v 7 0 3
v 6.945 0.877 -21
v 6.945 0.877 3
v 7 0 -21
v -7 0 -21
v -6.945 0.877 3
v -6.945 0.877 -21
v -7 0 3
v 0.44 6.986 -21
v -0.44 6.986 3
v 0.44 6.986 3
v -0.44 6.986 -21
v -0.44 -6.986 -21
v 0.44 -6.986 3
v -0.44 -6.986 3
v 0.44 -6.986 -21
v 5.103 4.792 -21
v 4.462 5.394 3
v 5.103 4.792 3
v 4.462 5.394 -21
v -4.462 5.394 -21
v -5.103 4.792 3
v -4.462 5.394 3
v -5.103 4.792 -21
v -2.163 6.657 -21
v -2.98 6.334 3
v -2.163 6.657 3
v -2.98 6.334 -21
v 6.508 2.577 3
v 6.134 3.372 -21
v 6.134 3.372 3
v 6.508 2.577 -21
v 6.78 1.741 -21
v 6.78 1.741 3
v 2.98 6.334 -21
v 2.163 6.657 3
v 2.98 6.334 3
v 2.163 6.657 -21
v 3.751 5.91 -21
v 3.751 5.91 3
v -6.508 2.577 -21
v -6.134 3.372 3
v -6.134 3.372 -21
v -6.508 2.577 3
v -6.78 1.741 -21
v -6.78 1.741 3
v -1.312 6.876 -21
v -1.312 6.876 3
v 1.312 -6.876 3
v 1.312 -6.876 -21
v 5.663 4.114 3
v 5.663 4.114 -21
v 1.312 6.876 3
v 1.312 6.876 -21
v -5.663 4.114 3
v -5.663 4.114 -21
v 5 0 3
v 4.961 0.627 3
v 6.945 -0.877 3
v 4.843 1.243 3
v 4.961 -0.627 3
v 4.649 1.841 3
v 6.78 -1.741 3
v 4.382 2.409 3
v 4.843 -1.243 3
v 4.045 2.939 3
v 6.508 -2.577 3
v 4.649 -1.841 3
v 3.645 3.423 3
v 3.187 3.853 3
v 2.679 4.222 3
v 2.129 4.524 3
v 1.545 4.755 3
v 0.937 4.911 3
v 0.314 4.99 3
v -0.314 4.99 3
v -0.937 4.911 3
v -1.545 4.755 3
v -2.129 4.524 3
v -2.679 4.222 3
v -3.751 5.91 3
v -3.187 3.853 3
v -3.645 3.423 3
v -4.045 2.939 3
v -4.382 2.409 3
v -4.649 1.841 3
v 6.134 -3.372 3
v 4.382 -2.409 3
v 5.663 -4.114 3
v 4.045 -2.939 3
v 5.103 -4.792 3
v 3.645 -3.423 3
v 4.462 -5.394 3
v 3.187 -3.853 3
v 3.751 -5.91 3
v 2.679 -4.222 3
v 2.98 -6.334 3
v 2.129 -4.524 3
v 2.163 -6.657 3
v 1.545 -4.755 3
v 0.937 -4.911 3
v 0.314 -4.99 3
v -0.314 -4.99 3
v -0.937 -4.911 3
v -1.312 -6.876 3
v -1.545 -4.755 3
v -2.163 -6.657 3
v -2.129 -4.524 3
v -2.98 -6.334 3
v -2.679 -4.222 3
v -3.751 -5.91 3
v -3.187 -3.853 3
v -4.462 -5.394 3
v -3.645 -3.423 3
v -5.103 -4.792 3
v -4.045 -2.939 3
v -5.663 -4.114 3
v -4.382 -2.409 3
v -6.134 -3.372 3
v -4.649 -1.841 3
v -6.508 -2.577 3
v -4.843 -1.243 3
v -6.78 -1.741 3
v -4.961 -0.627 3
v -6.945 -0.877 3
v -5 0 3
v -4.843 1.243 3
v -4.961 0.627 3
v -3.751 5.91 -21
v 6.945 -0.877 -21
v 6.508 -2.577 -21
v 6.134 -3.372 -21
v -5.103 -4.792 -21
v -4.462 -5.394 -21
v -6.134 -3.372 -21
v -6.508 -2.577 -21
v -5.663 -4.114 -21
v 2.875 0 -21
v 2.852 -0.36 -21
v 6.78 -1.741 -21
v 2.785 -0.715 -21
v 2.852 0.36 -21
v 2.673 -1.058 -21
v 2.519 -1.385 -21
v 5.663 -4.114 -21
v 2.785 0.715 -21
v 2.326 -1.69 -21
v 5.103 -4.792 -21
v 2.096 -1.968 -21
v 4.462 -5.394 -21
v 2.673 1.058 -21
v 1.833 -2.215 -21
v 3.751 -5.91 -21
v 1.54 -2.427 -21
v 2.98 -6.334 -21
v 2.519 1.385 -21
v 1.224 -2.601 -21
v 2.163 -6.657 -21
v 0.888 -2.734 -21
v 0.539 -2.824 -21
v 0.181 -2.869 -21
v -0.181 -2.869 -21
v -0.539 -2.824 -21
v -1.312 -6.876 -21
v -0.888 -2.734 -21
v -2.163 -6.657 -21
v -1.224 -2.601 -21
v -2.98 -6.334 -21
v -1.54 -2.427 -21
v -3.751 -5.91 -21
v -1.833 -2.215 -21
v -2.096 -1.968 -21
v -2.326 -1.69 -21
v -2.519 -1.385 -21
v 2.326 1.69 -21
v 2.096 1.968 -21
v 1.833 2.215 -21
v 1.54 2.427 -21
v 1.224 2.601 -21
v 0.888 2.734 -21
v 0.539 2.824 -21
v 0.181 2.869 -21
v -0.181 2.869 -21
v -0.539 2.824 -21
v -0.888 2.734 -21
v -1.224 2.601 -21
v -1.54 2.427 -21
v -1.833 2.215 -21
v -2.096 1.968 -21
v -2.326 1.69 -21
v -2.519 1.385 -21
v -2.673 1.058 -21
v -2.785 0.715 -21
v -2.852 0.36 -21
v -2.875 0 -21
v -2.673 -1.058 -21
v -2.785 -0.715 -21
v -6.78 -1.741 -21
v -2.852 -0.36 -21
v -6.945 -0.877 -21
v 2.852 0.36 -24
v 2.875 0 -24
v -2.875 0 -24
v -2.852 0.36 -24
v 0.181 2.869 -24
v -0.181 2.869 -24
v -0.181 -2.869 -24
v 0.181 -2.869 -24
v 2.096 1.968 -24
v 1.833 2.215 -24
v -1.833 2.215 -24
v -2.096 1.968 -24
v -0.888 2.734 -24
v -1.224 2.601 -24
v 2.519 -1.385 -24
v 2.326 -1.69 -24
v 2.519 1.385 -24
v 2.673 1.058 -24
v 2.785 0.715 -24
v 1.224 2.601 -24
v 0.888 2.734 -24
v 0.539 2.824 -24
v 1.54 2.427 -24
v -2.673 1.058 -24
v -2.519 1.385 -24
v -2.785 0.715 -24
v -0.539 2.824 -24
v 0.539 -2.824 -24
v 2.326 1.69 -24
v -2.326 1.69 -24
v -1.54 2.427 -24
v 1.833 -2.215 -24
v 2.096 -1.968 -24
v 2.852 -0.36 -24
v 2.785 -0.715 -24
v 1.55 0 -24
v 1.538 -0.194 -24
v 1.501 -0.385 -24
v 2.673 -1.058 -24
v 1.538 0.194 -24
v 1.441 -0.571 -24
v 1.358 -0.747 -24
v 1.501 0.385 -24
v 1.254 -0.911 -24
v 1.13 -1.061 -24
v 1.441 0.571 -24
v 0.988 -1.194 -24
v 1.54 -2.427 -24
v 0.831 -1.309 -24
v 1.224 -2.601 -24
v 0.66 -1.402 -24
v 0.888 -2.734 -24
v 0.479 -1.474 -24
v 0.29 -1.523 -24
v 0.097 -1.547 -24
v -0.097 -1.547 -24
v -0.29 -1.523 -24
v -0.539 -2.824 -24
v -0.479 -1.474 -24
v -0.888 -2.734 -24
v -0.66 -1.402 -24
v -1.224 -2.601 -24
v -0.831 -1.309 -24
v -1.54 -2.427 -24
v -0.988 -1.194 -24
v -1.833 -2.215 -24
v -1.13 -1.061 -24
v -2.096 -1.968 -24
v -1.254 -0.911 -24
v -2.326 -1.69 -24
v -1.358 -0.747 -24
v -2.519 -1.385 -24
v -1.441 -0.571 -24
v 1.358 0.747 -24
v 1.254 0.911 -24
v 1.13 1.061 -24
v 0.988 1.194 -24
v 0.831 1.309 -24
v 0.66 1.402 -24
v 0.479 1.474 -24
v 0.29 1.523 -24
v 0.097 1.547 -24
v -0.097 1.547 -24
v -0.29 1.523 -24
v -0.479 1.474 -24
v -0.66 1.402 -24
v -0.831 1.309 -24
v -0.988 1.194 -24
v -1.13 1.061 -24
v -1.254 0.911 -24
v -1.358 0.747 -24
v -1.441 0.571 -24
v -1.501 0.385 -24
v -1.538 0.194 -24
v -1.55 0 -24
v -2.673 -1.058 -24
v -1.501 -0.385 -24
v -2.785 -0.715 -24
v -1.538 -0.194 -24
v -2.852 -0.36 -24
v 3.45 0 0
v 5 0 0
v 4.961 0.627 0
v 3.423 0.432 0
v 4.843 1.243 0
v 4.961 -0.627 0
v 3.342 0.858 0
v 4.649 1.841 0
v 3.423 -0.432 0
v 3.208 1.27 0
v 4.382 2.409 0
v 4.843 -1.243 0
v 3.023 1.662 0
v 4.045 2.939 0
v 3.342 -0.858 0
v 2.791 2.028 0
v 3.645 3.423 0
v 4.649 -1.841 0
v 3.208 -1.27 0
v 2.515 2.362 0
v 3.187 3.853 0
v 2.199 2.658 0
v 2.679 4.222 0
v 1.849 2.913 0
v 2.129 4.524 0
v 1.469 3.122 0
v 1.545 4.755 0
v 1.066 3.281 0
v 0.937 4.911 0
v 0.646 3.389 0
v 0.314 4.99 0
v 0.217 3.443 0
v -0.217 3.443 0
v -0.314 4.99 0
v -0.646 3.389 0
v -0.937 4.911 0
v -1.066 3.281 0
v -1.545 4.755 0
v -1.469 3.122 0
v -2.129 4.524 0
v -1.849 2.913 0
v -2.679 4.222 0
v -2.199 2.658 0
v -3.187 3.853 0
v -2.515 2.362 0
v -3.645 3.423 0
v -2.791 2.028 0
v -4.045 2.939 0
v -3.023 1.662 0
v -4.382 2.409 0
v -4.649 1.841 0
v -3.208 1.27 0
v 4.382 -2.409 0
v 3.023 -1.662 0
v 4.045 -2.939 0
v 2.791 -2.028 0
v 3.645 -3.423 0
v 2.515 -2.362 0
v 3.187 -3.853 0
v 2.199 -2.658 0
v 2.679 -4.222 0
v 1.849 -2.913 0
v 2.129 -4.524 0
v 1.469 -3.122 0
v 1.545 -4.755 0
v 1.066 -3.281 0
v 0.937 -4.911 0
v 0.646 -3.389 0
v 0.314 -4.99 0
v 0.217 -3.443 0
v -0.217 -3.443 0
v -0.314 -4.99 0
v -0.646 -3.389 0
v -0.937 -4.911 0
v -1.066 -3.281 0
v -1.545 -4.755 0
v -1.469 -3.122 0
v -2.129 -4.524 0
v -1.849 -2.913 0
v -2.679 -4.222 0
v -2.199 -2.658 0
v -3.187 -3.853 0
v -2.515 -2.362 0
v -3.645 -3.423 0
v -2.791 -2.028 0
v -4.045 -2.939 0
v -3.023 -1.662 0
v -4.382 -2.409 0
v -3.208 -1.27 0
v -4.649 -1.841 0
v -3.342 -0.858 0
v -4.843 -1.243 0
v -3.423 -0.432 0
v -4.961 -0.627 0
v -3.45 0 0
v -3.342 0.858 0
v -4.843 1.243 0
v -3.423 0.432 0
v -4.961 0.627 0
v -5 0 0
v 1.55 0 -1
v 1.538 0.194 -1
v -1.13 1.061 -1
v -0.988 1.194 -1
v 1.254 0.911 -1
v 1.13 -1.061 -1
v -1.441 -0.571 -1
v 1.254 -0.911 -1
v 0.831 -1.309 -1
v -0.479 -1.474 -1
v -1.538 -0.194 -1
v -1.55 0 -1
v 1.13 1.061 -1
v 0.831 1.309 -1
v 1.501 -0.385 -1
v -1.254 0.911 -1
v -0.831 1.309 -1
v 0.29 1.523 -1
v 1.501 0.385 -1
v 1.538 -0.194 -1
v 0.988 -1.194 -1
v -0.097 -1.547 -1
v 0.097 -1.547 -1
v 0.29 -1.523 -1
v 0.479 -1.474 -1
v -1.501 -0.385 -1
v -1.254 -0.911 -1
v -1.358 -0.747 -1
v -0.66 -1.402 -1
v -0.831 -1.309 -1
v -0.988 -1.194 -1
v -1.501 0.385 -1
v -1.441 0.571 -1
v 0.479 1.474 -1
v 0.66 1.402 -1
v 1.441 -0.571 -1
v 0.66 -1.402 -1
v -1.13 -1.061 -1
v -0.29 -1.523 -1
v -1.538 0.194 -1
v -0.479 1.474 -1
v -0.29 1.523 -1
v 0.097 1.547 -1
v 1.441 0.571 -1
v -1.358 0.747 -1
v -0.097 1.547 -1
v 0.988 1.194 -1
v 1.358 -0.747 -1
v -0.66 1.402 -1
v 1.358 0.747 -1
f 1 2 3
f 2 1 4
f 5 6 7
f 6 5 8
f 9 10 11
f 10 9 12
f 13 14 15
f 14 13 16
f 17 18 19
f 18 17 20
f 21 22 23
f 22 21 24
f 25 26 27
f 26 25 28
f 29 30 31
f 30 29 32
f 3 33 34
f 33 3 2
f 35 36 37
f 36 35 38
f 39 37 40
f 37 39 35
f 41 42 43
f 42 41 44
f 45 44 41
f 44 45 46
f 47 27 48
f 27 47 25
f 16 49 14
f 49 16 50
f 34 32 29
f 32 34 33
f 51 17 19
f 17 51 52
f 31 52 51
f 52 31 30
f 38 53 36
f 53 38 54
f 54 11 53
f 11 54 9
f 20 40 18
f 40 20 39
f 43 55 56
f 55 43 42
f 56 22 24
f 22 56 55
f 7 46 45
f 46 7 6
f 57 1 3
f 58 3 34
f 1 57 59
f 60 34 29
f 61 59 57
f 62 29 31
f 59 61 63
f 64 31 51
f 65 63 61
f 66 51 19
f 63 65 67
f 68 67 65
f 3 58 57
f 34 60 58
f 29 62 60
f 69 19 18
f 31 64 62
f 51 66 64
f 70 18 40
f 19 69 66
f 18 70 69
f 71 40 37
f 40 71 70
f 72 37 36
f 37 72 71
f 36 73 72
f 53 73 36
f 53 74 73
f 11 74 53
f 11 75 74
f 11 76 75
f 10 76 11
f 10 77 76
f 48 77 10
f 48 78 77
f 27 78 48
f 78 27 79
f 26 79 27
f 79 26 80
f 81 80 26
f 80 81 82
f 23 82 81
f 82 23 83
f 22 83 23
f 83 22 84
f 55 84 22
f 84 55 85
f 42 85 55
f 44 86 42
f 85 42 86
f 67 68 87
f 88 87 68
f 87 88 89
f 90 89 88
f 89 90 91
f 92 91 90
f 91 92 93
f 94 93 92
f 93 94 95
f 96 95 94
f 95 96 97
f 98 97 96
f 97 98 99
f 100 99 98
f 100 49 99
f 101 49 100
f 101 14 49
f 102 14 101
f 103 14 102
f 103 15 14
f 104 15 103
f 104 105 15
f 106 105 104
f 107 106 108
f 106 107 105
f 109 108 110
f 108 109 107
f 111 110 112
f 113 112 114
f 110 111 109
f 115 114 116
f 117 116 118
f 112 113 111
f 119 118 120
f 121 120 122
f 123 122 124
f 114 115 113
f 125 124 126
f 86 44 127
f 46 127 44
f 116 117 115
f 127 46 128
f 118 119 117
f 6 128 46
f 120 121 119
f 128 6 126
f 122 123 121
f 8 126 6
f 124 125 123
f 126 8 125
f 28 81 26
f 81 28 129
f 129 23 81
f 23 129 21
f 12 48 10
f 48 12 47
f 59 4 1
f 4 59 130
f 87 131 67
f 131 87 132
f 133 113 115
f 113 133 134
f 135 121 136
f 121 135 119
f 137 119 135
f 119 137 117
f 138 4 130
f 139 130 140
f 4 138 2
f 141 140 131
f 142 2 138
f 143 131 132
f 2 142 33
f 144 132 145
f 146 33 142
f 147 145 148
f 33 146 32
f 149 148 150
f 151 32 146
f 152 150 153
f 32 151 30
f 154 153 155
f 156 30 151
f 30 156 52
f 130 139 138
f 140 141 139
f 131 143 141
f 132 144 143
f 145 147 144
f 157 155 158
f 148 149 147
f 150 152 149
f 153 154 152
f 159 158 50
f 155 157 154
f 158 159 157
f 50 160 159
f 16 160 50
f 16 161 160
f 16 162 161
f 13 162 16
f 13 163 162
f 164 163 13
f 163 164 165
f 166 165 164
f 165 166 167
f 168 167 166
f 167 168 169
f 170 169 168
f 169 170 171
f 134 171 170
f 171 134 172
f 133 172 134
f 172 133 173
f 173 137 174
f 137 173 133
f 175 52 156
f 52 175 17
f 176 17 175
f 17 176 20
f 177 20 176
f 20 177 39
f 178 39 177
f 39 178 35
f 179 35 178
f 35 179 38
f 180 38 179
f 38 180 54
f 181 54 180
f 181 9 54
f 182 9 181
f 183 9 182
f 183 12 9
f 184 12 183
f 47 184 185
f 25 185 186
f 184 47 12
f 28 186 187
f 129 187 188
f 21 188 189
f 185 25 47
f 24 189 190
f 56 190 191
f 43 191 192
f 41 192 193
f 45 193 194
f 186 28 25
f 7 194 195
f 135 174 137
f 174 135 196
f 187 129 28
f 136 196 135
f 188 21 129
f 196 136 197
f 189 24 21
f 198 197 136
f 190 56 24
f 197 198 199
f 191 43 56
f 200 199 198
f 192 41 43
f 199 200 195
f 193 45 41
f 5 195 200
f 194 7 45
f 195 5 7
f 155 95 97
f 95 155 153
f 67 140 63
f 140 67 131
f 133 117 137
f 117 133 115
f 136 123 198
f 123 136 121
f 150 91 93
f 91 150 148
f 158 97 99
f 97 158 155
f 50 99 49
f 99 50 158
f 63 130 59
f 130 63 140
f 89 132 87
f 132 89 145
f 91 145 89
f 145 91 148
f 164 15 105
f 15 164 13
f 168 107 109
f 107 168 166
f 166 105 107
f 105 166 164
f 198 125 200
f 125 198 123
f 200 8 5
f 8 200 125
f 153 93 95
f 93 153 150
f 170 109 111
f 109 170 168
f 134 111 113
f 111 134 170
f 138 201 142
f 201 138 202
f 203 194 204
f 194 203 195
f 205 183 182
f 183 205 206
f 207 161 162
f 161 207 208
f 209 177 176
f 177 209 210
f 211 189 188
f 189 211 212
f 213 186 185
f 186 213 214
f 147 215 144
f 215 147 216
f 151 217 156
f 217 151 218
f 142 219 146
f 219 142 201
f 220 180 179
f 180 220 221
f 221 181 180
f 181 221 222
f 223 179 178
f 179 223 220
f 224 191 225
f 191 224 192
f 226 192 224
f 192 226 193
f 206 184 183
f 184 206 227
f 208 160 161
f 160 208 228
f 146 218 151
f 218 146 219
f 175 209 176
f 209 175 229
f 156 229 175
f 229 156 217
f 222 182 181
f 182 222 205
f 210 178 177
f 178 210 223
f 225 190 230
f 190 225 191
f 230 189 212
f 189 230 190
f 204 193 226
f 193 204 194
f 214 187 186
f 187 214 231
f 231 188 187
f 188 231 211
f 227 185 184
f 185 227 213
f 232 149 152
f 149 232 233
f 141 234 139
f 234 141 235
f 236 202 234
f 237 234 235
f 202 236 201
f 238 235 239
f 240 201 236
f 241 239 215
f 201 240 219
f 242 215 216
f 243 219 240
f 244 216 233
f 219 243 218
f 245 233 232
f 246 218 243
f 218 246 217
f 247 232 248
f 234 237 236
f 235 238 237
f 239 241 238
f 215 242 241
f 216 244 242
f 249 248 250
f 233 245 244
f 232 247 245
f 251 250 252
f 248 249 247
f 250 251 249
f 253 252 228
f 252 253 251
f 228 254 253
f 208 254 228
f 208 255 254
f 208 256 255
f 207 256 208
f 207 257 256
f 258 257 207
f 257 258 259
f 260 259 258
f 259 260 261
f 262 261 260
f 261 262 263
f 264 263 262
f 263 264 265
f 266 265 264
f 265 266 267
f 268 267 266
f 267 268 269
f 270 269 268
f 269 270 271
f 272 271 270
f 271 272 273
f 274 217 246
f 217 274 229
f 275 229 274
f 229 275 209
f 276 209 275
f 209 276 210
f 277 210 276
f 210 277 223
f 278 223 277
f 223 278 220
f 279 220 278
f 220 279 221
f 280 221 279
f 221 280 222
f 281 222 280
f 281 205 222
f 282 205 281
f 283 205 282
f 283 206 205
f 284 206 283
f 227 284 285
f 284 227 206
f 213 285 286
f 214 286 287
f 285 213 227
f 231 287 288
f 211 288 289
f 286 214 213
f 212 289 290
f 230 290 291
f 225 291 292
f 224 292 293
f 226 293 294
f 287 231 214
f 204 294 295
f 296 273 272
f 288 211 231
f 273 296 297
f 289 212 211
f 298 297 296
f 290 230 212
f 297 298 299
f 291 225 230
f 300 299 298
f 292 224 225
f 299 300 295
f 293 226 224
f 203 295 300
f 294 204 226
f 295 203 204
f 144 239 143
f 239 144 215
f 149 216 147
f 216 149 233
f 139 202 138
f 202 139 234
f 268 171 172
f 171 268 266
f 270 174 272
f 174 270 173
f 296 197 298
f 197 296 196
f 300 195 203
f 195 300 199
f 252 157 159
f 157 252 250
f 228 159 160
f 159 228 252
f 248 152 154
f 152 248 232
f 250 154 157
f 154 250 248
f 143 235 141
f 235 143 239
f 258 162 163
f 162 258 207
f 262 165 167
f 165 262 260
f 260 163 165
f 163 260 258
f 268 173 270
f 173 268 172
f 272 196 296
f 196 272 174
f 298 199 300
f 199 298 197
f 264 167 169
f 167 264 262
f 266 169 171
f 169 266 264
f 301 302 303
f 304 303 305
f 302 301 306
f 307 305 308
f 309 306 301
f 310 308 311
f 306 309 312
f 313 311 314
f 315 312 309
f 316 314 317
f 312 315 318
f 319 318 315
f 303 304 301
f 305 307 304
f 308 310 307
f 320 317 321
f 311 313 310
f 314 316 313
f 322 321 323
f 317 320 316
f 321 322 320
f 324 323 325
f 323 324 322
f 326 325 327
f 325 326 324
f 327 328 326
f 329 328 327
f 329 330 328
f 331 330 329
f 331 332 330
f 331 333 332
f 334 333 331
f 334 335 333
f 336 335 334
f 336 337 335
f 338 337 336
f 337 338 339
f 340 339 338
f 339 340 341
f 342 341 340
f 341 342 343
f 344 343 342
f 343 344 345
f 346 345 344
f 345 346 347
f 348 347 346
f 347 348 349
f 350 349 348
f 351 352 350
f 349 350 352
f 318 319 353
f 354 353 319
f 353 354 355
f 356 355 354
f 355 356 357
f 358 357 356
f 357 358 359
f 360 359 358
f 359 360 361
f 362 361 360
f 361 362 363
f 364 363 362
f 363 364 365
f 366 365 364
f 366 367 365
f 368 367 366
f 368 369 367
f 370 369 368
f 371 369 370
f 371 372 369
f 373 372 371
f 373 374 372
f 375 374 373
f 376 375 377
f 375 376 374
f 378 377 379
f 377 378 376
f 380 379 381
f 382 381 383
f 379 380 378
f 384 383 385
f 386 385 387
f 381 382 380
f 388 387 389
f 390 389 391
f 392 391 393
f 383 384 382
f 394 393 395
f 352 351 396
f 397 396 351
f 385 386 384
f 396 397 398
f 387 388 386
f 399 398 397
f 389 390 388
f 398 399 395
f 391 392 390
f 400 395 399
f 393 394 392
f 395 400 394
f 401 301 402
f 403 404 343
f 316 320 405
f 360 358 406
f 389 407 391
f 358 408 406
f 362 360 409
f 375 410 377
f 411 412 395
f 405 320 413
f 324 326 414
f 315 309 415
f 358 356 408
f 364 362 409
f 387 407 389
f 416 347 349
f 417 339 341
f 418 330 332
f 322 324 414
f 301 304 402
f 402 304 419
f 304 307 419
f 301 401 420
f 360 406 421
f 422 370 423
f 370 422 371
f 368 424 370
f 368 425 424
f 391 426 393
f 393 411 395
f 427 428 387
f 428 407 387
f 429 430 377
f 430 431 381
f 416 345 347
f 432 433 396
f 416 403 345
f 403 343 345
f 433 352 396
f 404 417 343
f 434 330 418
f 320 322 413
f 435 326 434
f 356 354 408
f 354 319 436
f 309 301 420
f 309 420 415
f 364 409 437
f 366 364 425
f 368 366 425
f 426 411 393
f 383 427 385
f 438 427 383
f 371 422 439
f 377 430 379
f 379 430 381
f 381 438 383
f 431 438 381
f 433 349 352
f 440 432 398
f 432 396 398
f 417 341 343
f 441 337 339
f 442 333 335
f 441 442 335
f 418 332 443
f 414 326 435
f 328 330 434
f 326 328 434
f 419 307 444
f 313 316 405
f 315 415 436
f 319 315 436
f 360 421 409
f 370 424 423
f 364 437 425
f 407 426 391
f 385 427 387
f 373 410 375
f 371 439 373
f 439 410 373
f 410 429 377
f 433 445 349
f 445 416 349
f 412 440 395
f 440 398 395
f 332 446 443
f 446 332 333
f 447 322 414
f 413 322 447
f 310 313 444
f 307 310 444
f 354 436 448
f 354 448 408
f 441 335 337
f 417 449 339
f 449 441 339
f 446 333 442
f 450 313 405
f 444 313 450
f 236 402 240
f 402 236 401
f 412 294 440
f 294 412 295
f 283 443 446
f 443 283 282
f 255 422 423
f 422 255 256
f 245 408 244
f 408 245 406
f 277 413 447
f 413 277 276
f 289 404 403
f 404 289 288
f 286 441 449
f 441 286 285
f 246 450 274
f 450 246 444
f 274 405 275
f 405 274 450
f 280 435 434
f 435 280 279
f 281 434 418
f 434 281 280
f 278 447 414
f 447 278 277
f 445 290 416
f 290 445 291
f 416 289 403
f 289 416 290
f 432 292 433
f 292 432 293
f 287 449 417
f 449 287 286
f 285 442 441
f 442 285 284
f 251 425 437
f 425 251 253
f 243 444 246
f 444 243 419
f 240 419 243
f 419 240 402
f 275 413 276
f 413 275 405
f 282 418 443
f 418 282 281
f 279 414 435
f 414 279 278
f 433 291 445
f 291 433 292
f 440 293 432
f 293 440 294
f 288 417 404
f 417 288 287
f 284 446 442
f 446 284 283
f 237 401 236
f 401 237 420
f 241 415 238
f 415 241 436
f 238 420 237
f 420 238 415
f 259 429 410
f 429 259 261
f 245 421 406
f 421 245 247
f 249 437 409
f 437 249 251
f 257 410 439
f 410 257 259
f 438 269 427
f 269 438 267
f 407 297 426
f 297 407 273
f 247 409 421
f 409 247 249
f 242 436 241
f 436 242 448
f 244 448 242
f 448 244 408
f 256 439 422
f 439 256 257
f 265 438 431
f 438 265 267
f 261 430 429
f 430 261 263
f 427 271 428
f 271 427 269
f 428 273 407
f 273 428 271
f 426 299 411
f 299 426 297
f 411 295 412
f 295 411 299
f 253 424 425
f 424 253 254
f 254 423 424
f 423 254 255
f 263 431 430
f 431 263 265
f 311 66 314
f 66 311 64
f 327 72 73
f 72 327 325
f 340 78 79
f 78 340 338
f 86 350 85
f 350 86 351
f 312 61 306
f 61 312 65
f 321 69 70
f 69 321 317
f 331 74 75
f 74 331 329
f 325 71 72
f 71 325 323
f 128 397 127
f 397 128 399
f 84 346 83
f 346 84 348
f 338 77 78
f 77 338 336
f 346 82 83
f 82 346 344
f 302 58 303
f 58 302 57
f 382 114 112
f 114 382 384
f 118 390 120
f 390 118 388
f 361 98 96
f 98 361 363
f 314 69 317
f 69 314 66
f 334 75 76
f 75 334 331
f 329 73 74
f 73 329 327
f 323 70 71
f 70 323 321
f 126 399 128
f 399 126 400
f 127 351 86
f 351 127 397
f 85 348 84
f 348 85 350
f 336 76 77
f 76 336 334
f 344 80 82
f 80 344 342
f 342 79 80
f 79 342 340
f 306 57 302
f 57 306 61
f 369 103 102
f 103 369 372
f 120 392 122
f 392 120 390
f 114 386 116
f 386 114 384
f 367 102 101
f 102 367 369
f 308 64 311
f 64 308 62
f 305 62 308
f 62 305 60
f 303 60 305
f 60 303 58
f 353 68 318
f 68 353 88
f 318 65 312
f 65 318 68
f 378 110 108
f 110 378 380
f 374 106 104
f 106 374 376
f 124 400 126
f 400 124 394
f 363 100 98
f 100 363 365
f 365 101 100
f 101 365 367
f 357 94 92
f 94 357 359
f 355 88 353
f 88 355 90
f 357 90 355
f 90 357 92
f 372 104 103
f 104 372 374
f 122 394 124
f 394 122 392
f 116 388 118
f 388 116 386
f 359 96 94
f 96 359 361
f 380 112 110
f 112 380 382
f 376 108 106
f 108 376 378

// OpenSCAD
$fn = 50;

difference() {
	union() {
		translate(v = [0, 0, -21.0]) {
			cylinder(h = 24, r = 7.0);
		}
		#translate(v = [0, 0, -24.0]) {
			cylinder(h = 24, r = 2.875);
		}
	}
	union() {
		translate(v = [0, 0, 0]) {
			rotate(a = [0, 0, 0]) {
				difference() {
					union() {
						translate(v = [0, 0, -24.0]) {
							cylinder(h = 24, r = 1.25);
						}
						translate(v = [0, 0, -1.0]) {
							cylinder(h = 1.0, r1 = 1.55, r2 = 3.45);
						}
						translate(v = [0, 0, -24.0]) {
							cylinder(h = 24, r = 1.55);
						}
						translate(v = [0, 0, -24.0]) {
							cylinder(h = 24, r = 1.25);
						}
					}
					union();
				}
			}
		}
		#cylinder(h = 3, r = 5.0);
	}
}
